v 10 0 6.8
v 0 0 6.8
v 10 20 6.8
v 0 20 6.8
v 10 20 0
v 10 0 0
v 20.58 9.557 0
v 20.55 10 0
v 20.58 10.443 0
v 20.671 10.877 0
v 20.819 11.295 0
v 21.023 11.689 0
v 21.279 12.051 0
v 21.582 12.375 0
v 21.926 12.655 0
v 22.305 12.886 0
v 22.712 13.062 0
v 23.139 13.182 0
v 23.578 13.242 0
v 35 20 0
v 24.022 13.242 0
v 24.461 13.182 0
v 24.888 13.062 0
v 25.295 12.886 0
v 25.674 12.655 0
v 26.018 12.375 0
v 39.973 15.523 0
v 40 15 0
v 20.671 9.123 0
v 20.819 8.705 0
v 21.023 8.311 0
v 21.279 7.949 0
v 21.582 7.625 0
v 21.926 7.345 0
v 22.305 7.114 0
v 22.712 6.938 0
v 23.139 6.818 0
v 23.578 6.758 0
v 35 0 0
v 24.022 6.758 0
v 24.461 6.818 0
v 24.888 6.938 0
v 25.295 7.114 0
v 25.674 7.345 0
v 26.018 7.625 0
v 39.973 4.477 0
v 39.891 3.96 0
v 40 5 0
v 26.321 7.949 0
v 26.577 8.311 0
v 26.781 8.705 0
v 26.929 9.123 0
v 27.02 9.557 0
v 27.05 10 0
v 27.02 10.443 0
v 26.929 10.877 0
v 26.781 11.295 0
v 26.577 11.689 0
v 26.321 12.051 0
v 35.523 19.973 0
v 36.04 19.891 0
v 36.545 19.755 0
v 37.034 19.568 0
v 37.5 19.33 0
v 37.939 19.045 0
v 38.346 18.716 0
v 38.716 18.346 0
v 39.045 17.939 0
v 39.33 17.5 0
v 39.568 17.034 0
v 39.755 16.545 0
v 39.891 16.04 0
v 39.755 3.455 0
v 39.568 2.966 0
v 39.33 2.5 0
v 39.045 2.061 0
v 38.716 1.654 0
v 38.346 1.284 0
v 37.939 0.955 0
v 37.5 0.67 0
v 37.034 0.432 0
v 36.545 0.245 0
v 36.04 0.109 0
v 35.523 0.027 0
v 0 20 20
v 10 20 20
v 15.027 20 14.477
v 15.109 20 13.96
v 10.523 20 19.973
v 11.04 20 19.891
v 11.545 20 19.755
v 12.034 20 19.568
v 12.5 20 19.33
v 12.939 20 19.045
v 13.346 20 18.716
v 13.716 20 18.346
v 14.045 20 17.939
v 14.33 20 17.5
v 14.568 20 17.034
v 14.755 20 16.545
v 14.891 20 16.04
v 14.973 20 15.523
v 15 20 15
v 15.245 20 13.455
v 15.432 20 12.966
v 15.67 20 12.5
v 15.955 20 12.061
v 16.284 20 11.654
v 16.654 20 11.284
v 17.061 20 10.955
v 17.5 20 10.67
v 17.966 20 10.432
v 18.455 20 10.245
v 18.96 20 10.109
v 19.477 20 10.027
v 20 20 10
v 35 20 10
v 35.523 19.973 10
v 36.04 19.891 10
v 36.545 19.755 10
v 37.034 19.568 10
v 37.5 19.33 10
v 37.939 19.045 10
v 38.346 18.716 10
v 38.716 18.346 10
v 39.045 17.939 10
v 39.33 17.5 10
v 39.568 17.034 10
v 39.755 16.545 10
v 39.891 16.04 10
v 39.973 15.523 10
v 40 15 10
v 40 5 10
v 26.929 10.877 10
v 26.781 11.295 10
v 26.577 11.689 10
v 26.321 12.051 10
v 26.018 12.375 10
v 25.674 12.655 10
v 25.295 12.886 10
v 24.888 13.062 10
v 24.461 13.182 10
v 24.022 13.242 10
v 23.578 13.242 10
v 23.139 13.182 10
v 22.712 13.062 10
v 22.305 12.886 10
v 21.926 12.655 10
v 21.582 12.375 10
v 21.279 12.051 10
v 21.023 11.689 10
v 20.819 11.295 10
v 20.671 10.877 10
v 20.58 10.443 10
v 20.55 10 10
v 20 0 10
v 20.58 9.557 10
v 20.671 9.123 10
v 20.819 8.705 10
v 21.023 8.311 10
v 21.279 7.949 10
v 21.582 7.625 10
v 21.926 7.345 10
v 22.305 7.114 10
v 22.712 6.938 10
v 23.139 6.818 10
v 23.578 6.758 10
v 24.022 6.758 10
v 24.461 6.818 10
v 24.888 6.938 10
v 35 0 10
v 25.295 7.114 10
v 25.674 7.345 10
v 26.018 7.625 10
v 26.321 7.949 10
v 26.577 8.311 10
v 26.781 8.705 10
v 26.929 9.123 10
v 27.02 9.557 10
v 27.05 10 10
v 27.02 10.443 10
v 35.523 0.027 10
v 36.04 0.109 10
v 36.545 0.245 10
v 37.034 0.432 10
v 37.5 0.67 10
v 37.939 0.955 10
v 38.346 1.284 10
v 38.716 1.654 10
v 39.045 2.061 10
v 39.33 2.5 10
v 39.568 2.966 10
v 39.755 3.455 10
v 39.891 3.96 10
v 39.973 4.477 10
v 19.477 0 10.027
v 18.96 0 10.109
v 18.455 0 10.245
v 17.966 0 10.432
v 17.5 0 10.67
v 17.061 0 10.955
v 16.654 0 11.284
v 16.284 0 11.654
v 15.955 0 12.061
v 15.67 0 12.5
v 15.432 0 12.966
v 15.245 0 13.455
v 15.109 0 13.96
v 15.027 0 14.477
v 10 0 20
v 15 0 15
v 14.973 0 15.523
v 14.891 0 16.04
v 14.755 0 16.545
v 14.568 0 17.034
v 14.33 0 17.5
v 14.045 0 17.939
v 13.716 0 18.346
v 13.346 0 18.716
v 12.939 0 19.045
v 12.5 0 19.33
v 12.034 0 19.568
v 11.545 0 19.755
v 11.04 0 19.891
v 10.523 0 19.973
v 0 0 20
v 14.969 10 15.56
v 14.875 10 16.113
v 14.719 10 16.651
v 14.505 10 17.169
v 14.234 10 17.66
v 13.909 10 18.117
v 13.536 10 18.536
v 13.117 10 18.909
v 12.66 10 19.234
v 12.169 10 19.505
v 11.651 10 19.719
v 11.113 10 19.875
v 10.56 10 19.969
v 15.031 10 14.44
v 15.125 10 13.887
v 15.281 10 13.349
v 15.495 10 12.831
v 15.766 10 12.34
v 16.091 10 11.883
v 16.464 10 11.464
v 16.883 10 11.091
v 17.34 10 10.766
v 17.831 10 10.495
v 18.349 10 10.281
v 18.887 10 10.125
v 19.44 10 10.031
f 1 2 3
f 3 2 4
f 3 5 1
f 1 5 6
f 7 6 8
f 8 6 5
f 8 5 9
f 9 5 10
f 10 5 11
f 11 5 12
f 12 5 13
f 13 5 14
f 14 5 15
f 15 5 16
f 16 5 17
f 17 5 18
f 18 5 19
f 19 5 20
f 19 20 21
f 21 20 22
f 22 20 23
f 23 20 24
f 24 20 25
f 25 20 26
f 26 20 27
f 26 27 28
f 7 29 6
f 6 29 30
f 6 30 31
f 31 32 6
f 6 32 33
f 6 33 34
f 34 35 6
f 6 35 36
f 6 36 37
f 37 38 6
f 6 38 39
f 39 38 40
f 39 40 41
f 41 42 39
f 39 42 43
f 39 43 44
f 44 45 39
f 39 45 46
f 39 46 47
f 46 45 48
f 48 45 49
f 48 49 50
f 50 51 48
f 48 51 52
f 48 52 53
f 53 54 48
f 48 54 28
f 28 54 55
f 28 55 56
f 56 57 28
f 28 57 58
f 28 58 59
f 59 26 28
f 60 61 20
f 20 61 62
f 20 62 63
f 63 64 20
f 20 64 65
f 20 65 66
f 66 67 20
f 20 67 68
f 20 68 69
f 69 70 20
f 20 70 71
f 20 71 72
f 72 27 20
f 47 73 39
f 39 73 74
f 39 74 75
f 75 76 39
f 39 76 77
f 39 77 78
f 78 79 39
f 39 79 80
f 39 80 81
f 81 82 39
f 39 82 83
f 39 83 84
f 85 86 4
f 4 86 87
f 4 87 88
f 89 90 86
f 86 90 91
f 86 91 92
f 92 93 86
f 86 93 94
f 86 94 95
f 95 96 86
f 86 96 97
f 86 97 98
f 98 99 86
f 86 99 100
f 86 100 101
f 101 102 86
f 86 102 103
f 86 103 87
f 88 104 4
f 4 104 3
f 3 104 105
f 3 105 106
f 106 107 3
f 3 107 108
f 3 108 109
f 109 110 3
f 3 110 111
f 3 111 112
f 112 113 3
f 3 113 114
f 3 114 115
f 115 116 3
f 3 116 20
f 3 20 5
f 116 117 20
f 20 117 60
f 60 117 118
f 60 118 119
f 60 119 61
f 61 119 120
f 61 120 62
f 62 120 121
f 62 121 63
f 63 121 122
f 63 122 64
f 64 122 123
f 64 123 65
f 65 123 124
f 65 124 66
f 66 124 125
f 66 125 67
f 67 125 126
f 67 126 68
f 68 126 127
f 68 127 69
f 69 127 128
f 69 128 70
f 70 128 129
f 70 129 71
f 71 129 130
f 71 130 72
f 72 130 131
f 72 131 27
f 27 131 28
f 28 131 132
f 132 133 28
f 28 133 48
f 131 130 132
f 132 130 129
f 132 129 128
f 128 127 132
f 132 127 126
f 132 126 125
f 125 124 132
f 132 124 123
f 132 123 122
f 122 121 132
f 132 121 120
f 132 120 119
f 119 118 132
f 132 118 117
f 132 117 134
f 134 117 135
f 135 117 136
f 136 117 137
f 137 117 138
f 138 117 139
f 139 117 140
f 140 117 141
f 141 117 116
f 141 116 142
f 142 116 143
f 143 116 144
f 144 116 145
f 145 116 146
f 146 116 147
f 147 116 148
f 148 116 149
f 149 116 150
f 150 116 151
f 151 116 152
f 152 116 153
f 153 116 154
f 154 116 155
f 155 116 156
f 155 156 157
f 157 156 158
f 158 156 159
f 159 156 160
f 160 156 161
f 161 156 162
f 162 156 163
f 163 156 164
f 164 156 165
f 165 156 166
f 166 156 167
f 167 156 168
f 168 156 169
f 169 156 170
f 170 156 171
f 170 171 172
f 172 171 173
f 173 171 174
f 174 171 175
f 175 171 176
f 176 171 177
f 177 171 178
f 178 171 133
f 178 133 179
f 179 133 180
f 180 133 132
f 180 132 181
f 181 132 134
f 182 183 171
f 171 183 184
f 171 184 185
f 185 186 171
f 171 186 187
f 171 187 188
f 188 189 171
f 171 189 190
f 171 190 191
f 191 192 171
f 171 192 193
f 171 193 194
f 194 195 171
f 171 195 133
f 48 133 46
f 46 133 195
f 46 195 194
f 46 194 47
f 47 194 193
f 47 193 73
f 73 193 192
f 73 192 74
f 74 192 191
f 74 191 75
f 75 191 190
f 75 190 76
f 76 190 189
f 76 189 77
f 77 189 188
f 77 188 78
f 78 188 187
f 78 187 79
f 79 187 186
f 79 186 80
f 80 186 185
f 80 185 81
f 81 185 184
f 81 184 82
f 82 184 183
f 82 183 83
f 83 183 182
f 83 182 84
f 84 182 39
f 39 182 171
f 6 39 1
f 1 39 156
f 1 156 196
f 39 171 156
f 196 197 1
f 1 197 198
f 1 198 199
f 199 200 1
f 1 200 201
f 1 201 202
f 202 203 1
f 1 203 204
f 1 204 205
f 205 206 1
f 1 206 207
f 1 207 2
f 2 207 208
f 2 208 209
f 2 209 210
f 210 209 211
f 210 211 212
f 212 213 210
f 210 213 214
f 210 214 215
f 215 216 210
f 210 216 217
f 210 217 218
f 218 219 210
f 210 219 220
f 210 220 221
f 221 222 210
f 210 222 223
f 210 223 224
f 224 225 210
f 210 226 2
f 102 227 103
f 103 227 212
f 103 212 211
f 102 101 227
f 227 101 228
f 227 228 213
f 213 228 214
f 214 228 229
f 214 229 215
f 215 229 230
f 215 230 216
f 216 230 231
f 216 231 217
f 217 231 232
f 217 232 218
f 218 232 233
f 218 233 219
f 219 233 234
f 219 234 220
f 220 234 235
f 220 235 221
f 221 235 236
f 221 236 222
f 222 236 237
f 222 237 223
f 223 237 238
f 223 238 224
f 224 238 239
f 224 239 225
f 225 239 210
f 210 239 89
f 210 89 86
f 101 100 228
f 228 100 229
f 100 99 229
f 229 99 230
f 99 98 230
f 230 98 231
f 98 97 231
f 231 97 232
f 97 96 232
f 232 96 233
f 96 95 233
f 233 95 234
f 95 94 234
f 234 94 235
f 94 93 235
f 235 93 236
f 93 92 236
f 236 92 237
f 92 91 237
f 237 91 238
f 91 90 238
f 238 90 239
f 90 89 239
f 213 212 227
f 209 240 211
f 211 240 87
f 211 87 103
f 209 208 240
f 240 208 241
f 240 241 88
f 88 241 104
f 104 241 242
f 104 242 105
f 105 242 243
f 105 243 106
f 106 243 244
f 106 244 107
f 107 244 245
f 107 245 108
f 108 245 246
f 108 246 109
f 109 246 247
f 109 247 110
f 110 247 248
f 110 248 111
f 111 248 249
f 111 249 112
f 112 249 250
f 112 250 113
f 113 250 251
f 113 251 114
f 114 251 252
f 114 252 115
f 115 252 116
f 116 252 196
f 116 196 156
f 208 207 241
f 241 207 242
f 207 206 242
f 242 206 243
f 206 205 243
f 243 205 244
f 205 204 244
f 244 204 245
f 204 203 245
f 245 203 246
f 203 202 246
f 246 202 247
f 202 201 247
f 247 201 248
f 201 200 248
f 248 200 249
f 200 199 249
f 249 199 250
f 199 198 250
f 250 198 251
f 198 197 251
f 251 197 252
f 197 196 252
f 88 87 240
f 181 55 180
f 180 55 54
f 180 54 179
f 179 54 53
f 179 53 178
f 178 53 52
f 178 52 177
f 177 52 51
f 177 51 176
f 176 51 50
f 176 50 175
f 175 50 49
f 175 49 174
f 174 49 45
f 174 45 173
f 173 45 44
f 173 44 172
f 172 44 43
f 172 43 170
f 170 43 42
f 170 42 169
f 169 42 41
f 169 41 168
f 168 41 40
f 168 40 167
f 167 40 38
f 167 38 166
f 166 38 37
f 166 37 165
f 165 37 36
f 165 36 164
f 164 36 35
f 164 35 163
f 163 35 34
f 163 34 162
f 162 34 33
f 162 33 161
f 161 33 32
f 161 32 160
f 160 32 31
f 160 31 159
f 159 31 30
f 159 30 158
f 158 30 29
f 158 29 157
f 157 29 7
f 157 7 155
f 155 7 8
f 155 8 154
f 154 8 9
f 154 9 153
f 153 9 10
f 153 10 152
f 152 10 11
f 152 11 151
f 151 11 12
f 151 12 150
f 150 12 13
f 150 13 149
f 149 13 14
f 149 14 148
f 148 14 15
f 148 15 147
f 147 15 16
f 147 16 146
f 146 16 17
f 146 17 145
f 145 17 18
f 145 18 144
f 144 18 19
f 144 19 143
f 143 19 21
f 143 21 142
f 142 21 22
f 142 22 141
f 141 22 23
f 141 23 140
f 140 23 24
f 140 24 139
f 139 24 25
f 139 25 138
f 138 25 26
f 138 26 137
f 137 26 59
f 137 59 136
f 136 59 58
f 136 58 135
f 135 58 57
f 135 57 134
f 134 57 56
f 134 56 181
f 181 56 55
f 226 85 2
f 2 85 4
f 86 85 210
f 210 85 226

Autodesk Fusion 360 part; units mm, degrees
sketch "Sketch1" plane through (0, 0, 0) normal (0, 0, 1) x (1, 0, 0)
  line L0 (0, 0) -> (40, 0)
  line L1 (40, 0) -> (40, 20)
  line L2 (40, 20) -> (0, 20)
  line L3 (0, 20) -> (0, 0)
  dimension "d1" = 40
  dimension "d2" = 20
extrude "Extrude1" add sketch "Sketch1" along normal blind 20
sketch "Sketch2" plane through (0, 0, 0) normal (0, 0, -1) x (1, 0, 0)
  line L0 (0, 0) -> (0, -20)
  line L1 (0, -20) -> (40, -20)
  line L2 (40, -20) -> (40, 0)
  line L3 (40, 0) -> (0, 0)
  line L4 (0, 0) -> (10, 0)
  line L5 (10, 0) -> (10, -20)
  line L6 (10, -20) -> (0, -20)
  line L7 (0, -20) -> (0, 0)
  line L8 (10, -10) -> (23.8, -10)
  circle A0 centre (23.8, -10) radius 3.25
  dimension "d5" = 10
  dimension "d6" = 20
  dimension "d7" = 13.8
  dimension "d8" = 6.5
extrude "Extrude2" cut sketch "Sketch2" against normal blind 7.8 contours L0 L1 L3 L4 L5 L6 L7 | A0
extrude "Extrude3" cut 1 faces at (24.5115, 8.6722, 7.8) along direction (0, 0, 1) blind 210
sketch "Sketch3" plane through (0, 0, 20) normal (0, 0, 1) x (-1, 0, 0)
  circle A0 centre (-23.8, -10) radius 3.25
  line L0 (0, -20) -> (0, 0)
  line L1 (0, 0) -> (-40, 0)
  line L2 (-40, 0) -> (-40, -20)
  line L3 (-40, -20) -> (0, -20)
  line L4 (-40, -20) -> (-15, -20)
  line L5 (-15, -20) -> (-15, 0)
  line L6 (-15, 0) -> (-40, 0)
  line L7 (-40, 0) -> (-40, -20)
  dimension "d13" = 25
  dimension "d14" = 20
extrude "Extrude4" cut sketch "Sketch3" against normal blind 10 contours L1 L2 L3 L4 L5 L6 L7
fillet "Fillet1" radius 5 2 edges at (15, 10, 10) (15, 10, 20)
fillet "Fillet2" radius 5 2 edges at (40, 0, 5) (40, 20, 5)
sketch "Sketch4" plane through (0, 0, 0) normal (0, 1, 0) x (1, 0, 0)
extrude "Extrude5" cut 1 faces at (10, 6.6667, 2.6) along direction (1, 0, 0) blind 0.5
extrude "Extrude6" add 1 faces at (10.5, 6.6667, 2.6) along direction (-1, 0, 0) blind 0.5
sketch "Sketch5" plane through (0, 0, 20) normal (0, 0, 1) x (-1, 0, 0)
  line L0 (-10, 0) -> (-10, -20)
  line L1 (-10, -20) -> (0, -20)
  line L2 (0, -20) -> (0, 0)
  line L3 (0, 0) -> (-10, 0)
sketch "Sketch6" plane through (0, 0, 0) normal (0, -1, 0) x (1, 0, 0)
  line L0 (10, 0) -> (35, 0)
  line L1 (35, 0) -> (35, 10)
  line L2 (35, 10) -> (20, 10)
  arc A0 (15, 15) -> (20, 10) centre (20, 15) ccw
  arc A1 (15, 15) -> (10, 20) centre (10, 15) ccw
  line L3 (10, 20) -> (0, 20)
  line L4 (0, 20) -> (0, 7.8)
  line L5 (0, 7.8) -> (10, 7.8)
  line L6 (10, 7.8) -> (10, 0)
sketch "Sketch7" plane through (0, 0, 0) normal (0, -1, 0) x (1, 0, 0)
sketch "Sketch8" plane through (0, 0, 10) normal (0, 0, 1) x (-1, 0, 0)
  arc A0 (-40, -15) -> (-35, -20) centre (-35, -15) ccw
  line L0 (-35, -20) -> (-20, -20)
  line L1 (-20, -20) -> (-20, 0)
  line L2 (-20, 0) -> (-35, 0)
  arc A1 (-35, 0) -> (-40, -5) centre (-35, -5) ccw
  line L3 (-40, -5) -> (-40, -15)
  circle A2 centre (-23.8, -10) radius 3.25
extrude "Extrude7" add 1 faces at (3.3333, 6.6667, 7.8) along direction (0, 0, -1) blind 1
